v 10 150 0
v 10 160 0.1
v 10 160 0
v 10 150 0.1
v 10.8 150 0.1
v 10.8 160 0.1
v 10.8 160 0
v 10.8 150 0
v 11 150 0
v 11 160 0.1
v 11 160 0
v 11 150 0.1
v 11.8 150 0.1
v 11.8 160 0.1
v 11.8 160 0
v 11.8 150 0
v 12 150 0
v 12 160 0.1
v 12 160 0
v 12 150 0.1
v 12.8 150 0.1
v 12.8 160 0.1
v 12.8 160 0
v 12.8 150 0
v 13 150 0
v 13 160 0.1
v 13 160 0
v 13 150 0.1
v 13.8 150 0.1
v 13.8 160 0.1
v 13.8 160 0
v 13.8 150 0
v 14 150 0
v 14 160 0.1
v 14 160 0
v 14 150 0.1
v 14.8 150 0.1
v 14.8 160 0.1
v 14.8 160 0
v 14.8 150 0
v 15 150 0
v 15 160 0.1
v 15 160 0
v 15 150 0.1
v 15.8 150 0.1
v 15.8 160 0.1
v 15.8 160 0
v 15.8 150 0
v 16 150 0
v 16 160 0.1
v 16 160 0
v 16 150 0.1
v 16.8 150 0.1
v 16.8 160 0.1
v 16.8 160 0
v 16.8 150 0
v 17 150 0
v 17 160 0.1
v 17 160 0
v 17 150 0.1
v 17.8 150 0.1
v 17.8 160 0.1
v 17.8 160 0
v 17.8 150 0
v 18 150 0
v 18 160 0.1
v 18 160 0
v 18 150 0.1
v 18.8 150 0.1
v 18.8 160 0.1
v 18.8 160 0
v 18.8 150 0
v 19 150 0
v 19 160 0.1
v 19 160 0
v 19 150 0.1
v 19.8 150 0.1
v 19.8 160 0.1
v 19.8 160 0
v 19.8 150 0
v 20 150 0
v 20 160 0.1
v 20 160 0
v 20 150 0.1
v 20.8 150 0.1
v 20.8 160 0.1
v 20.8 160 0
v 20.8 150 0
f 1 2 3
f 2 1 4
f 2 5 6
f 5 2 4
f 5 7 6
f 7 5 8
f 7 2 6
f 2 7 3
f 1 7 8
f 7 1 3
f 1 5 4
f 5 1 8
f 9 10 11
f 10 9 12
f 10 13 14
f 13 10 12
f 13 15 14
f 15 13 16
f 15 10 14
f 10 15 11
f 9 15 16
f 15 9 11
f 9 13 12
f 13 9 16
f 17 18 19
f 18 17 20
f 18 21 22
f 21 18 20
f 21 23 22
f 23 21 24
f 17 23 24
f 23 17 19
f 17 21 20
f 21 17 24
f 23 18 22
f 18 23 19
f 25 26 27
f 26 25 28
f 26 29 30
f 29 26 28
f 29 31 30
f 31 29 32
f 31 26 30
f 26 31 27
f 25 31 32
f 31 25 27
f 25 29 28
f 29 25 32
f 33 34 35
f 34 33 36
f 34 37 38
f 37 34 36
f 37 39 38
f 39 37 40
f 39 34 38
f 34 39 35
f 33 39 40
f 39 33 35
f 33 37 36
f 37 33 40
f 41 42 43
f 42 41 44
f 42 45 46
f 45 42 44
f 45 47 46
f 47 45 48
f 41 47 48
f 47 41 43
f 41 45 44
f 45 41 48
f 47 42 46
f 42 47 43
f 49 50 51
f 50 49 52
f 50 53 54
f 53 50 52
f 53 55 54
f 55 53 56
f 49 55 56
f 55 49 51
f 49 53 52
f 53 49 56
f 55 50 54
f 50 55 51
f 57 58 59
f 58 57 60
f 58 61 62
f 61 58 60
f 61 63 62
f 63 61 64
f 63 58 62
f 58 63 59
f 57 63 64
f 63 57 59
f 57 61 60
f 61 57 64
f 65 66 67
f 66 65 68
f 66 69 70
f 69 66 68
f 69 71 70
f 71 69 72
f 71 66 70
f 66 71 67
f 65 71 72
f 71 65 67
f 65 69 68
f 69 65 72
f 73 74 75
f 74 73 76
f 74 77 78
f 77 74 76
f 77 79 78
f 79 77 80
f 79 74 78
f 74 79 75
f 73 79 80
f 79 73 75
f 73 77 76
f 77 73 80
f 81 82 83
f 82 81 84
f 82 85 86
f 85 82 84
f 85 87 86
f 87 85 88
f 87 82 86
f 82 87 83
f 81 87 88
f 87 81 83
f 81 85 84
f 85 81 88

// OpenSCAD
translate([10+0,10+140,0])
        for (i = [0 : 10]){
            translate([i,0,0])
                cube(size = [0.8,10,0.1]);
    }
